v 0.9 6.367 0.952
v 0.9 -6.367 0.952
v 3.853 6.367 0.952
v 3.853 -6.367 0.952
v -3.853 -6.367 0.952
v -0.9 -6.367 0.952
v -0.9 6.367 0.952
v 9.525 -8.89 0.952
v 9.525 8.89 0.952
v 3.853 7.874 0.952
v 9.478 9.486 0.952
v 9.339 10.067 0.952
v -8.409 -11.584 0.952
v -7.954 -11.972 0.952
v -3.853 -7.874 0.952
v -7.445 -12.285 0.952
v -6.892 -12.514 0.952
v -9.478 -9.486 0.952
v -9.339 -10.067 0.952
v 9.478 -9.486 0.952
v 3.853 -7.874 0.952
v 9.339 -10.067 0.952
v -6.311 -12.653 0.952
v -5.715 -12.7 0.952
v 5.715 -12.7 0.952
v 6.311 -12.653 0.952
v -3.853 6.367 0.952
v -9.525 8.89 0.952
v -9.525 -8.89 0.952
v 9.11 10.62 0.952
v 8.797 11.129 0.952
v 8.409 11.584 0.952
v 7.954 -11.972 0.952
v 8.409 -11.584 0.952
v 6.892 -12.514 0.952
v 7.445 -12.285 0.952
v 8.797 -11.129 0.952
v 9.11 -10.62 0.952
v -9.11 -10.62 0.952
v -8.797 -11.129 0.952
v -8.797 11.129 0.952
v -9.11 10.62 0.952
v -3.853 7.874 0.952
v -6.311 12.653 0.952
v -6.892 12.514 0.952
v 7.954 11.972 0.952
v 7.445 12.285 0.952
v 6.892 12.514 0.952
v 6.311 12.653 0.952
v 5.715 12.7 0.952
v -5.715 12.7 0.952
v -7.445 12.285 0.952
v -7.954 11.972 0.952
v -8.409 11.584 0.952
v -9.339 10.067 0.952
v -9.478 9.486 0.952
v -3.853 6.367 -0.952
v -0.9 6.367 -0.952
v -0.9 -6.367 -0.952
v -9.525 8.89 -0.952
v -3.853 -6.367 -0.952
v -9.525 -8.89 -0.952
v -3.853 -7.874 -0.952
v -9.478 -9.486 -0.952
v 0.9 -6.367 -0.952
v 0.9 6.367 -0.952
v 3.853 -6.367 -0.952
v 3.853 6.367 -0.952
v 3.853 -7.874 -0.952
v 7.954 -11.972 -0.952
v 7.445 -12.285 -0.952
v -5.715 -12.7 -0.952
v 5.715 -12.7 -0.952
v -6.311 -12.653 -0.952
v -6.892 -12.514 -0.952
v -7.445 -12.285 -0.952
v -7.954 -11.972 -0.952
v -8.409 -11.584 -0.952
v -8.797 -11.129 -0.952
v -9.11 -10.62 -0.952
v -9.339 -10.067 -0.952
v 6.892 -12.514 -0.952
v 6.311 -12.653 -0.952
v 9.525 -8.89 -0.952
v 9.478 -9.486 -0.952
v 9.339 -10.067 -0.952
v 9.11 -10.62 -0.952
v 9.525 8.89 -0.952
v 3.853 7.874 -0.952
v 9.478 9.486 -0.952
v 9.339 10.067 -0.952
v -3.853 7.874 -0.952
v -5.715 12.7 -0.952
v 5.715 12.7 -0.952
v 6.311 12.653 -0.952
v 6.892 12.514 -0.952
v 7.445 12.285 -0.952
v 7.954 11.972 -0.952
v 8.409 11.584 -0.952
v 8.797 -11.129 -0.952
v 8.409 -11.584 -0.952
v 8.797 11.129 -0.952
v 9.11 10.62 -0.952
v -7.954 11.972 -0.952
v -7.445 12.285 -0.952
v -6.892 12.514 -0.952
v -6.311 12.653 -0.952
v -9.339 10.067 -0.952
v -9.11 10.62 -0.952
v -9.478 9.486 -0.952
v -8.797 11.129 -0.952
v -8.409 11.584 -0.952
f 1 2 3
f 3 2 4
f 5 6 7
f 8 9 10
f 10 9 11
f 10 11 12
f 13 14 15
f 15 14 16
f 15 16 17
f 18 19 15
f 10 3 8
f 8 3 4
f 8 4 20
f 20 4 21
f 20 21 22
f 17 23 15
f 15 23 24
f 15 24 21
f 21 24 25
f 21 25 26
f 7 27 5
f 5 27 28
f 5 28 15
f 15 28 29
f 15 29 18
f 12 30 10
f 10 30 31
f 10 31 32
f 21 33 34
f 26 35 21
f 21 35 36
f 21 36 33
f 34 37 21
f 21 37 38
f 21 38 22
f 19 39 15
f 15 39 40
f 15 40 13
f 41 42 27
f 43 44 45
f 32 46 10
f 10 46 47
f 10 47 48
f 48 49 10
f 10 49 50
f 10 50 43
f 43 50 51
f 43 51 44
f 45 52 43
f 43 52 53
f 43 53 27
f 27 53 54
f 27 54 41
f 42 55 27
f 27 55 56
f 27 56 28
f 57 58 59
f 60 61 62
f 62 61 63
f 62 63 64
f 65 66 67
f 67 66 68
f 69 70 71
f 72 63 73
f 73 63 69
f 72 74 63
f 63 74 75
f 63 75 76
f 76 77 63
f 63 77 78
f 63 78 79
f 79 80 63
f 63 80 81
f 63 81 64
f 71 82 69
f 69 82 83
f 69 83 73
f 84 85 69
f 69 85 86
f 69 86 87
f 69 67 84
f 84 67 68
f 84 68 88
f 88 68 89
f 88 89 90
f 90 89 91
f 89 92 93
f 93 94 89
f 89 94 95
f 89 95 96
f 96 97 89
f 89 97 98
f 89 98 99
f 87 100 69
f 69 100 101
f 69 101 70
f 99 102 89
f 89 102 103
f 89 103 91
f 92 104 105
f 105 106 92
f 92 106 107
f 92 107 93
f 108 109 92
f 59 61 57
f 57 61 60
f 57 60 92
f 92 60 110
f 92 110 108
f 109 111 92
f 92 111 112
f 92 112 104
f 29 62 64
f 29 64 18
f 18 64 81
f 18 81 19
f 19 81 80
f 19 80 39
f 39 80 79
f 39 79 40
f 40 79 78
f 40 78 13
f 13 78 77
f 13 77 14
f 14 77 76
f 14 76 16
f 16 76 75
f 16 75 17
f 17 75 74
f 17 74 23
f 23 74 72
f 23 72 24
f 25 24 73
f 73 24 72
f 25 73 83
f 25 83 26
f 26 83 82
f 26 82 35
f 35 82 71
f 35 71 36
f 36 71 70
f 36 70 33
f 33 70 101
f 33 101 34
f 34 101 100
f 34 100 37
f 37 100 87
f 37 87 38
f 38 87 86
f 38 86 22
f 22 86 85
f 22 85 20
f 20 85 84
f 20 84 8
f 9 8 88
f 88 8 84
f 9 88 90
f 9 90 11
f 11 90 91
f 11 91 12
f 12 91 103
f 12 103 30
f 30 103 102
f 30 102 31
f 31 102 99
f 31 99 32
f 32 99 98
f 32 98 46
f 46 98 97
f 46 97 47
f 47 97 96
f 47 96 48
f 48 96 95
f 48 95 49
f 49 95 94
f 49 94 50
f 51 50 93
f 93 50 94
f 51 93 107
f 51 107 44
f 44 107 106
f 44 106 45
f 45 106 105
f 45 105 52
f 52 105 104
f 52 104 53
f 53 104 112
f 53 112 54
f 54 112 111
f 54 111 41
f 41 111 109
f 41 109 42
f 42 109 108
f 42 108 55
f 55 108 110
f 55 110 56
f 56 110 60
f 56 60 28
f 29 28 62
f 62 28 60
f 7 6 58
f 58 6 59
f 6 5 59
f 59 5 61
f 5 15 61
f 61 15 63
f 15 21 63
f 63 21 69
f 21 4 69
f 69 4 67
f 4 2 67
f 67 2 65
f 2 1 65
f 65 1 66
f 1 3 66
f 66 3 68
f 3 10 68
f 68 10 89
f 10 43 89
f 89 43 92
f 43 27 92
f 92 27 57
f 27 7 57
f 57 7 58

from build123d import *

# Parameters (mm, degrees)
BOSS_EXTRUDE1_DEPTH = 0.9525


with BuildPart() as part:
    # Sketch1 → Boss-Extrude1 (new, symmetric)
    with BuildSketch(Plane.XY):
        with BuildLine():
            Line((-5.715, 12.7), (5.715, 12.7))
            ThreePointArc((5.715, 12.7), (8.409076836, 11.584076836), (9.525, 8.89))
            Line((9.525, 8.89), (9.525, -8.89))
            ThreePointArc((9.525, -8.89), (8.409076836, -11.584076836), (5.715, -12.7))
            Line((5.715, -12.7), (-5.715, -12.7))
            ThreePointArc((-5.715, -12.7), (-8.409076836, -11.584076836), (-9.525, -8.89))
            Line((-9.525, -8.89), (-9.525, 8.89))
            ThreePointArc((-9.525, 8.89), (-8.409076836, 11.584076836), (-5.715, 12.7))
        make_face()
        Polygon((-3.85275, -6.367292239), (-3.85275, -7.874), (3.85275, -7.874), (3.85275, -6.367292239), (0.9, -6.367292239), (0.9, 6.367292239), (3.85275, 6.367292239), (3.85275, 7.874), (-3.85275, 7.874), (-3.85275, 6.367292239), (-0.9, 6.367292239), (-0.9, -6.367292239), align=None, mode=Mode.SUBTRACT)
    extrude(amount=BOSS_EXTRUDE1_DEPTH, both=True)


solid = part.part
